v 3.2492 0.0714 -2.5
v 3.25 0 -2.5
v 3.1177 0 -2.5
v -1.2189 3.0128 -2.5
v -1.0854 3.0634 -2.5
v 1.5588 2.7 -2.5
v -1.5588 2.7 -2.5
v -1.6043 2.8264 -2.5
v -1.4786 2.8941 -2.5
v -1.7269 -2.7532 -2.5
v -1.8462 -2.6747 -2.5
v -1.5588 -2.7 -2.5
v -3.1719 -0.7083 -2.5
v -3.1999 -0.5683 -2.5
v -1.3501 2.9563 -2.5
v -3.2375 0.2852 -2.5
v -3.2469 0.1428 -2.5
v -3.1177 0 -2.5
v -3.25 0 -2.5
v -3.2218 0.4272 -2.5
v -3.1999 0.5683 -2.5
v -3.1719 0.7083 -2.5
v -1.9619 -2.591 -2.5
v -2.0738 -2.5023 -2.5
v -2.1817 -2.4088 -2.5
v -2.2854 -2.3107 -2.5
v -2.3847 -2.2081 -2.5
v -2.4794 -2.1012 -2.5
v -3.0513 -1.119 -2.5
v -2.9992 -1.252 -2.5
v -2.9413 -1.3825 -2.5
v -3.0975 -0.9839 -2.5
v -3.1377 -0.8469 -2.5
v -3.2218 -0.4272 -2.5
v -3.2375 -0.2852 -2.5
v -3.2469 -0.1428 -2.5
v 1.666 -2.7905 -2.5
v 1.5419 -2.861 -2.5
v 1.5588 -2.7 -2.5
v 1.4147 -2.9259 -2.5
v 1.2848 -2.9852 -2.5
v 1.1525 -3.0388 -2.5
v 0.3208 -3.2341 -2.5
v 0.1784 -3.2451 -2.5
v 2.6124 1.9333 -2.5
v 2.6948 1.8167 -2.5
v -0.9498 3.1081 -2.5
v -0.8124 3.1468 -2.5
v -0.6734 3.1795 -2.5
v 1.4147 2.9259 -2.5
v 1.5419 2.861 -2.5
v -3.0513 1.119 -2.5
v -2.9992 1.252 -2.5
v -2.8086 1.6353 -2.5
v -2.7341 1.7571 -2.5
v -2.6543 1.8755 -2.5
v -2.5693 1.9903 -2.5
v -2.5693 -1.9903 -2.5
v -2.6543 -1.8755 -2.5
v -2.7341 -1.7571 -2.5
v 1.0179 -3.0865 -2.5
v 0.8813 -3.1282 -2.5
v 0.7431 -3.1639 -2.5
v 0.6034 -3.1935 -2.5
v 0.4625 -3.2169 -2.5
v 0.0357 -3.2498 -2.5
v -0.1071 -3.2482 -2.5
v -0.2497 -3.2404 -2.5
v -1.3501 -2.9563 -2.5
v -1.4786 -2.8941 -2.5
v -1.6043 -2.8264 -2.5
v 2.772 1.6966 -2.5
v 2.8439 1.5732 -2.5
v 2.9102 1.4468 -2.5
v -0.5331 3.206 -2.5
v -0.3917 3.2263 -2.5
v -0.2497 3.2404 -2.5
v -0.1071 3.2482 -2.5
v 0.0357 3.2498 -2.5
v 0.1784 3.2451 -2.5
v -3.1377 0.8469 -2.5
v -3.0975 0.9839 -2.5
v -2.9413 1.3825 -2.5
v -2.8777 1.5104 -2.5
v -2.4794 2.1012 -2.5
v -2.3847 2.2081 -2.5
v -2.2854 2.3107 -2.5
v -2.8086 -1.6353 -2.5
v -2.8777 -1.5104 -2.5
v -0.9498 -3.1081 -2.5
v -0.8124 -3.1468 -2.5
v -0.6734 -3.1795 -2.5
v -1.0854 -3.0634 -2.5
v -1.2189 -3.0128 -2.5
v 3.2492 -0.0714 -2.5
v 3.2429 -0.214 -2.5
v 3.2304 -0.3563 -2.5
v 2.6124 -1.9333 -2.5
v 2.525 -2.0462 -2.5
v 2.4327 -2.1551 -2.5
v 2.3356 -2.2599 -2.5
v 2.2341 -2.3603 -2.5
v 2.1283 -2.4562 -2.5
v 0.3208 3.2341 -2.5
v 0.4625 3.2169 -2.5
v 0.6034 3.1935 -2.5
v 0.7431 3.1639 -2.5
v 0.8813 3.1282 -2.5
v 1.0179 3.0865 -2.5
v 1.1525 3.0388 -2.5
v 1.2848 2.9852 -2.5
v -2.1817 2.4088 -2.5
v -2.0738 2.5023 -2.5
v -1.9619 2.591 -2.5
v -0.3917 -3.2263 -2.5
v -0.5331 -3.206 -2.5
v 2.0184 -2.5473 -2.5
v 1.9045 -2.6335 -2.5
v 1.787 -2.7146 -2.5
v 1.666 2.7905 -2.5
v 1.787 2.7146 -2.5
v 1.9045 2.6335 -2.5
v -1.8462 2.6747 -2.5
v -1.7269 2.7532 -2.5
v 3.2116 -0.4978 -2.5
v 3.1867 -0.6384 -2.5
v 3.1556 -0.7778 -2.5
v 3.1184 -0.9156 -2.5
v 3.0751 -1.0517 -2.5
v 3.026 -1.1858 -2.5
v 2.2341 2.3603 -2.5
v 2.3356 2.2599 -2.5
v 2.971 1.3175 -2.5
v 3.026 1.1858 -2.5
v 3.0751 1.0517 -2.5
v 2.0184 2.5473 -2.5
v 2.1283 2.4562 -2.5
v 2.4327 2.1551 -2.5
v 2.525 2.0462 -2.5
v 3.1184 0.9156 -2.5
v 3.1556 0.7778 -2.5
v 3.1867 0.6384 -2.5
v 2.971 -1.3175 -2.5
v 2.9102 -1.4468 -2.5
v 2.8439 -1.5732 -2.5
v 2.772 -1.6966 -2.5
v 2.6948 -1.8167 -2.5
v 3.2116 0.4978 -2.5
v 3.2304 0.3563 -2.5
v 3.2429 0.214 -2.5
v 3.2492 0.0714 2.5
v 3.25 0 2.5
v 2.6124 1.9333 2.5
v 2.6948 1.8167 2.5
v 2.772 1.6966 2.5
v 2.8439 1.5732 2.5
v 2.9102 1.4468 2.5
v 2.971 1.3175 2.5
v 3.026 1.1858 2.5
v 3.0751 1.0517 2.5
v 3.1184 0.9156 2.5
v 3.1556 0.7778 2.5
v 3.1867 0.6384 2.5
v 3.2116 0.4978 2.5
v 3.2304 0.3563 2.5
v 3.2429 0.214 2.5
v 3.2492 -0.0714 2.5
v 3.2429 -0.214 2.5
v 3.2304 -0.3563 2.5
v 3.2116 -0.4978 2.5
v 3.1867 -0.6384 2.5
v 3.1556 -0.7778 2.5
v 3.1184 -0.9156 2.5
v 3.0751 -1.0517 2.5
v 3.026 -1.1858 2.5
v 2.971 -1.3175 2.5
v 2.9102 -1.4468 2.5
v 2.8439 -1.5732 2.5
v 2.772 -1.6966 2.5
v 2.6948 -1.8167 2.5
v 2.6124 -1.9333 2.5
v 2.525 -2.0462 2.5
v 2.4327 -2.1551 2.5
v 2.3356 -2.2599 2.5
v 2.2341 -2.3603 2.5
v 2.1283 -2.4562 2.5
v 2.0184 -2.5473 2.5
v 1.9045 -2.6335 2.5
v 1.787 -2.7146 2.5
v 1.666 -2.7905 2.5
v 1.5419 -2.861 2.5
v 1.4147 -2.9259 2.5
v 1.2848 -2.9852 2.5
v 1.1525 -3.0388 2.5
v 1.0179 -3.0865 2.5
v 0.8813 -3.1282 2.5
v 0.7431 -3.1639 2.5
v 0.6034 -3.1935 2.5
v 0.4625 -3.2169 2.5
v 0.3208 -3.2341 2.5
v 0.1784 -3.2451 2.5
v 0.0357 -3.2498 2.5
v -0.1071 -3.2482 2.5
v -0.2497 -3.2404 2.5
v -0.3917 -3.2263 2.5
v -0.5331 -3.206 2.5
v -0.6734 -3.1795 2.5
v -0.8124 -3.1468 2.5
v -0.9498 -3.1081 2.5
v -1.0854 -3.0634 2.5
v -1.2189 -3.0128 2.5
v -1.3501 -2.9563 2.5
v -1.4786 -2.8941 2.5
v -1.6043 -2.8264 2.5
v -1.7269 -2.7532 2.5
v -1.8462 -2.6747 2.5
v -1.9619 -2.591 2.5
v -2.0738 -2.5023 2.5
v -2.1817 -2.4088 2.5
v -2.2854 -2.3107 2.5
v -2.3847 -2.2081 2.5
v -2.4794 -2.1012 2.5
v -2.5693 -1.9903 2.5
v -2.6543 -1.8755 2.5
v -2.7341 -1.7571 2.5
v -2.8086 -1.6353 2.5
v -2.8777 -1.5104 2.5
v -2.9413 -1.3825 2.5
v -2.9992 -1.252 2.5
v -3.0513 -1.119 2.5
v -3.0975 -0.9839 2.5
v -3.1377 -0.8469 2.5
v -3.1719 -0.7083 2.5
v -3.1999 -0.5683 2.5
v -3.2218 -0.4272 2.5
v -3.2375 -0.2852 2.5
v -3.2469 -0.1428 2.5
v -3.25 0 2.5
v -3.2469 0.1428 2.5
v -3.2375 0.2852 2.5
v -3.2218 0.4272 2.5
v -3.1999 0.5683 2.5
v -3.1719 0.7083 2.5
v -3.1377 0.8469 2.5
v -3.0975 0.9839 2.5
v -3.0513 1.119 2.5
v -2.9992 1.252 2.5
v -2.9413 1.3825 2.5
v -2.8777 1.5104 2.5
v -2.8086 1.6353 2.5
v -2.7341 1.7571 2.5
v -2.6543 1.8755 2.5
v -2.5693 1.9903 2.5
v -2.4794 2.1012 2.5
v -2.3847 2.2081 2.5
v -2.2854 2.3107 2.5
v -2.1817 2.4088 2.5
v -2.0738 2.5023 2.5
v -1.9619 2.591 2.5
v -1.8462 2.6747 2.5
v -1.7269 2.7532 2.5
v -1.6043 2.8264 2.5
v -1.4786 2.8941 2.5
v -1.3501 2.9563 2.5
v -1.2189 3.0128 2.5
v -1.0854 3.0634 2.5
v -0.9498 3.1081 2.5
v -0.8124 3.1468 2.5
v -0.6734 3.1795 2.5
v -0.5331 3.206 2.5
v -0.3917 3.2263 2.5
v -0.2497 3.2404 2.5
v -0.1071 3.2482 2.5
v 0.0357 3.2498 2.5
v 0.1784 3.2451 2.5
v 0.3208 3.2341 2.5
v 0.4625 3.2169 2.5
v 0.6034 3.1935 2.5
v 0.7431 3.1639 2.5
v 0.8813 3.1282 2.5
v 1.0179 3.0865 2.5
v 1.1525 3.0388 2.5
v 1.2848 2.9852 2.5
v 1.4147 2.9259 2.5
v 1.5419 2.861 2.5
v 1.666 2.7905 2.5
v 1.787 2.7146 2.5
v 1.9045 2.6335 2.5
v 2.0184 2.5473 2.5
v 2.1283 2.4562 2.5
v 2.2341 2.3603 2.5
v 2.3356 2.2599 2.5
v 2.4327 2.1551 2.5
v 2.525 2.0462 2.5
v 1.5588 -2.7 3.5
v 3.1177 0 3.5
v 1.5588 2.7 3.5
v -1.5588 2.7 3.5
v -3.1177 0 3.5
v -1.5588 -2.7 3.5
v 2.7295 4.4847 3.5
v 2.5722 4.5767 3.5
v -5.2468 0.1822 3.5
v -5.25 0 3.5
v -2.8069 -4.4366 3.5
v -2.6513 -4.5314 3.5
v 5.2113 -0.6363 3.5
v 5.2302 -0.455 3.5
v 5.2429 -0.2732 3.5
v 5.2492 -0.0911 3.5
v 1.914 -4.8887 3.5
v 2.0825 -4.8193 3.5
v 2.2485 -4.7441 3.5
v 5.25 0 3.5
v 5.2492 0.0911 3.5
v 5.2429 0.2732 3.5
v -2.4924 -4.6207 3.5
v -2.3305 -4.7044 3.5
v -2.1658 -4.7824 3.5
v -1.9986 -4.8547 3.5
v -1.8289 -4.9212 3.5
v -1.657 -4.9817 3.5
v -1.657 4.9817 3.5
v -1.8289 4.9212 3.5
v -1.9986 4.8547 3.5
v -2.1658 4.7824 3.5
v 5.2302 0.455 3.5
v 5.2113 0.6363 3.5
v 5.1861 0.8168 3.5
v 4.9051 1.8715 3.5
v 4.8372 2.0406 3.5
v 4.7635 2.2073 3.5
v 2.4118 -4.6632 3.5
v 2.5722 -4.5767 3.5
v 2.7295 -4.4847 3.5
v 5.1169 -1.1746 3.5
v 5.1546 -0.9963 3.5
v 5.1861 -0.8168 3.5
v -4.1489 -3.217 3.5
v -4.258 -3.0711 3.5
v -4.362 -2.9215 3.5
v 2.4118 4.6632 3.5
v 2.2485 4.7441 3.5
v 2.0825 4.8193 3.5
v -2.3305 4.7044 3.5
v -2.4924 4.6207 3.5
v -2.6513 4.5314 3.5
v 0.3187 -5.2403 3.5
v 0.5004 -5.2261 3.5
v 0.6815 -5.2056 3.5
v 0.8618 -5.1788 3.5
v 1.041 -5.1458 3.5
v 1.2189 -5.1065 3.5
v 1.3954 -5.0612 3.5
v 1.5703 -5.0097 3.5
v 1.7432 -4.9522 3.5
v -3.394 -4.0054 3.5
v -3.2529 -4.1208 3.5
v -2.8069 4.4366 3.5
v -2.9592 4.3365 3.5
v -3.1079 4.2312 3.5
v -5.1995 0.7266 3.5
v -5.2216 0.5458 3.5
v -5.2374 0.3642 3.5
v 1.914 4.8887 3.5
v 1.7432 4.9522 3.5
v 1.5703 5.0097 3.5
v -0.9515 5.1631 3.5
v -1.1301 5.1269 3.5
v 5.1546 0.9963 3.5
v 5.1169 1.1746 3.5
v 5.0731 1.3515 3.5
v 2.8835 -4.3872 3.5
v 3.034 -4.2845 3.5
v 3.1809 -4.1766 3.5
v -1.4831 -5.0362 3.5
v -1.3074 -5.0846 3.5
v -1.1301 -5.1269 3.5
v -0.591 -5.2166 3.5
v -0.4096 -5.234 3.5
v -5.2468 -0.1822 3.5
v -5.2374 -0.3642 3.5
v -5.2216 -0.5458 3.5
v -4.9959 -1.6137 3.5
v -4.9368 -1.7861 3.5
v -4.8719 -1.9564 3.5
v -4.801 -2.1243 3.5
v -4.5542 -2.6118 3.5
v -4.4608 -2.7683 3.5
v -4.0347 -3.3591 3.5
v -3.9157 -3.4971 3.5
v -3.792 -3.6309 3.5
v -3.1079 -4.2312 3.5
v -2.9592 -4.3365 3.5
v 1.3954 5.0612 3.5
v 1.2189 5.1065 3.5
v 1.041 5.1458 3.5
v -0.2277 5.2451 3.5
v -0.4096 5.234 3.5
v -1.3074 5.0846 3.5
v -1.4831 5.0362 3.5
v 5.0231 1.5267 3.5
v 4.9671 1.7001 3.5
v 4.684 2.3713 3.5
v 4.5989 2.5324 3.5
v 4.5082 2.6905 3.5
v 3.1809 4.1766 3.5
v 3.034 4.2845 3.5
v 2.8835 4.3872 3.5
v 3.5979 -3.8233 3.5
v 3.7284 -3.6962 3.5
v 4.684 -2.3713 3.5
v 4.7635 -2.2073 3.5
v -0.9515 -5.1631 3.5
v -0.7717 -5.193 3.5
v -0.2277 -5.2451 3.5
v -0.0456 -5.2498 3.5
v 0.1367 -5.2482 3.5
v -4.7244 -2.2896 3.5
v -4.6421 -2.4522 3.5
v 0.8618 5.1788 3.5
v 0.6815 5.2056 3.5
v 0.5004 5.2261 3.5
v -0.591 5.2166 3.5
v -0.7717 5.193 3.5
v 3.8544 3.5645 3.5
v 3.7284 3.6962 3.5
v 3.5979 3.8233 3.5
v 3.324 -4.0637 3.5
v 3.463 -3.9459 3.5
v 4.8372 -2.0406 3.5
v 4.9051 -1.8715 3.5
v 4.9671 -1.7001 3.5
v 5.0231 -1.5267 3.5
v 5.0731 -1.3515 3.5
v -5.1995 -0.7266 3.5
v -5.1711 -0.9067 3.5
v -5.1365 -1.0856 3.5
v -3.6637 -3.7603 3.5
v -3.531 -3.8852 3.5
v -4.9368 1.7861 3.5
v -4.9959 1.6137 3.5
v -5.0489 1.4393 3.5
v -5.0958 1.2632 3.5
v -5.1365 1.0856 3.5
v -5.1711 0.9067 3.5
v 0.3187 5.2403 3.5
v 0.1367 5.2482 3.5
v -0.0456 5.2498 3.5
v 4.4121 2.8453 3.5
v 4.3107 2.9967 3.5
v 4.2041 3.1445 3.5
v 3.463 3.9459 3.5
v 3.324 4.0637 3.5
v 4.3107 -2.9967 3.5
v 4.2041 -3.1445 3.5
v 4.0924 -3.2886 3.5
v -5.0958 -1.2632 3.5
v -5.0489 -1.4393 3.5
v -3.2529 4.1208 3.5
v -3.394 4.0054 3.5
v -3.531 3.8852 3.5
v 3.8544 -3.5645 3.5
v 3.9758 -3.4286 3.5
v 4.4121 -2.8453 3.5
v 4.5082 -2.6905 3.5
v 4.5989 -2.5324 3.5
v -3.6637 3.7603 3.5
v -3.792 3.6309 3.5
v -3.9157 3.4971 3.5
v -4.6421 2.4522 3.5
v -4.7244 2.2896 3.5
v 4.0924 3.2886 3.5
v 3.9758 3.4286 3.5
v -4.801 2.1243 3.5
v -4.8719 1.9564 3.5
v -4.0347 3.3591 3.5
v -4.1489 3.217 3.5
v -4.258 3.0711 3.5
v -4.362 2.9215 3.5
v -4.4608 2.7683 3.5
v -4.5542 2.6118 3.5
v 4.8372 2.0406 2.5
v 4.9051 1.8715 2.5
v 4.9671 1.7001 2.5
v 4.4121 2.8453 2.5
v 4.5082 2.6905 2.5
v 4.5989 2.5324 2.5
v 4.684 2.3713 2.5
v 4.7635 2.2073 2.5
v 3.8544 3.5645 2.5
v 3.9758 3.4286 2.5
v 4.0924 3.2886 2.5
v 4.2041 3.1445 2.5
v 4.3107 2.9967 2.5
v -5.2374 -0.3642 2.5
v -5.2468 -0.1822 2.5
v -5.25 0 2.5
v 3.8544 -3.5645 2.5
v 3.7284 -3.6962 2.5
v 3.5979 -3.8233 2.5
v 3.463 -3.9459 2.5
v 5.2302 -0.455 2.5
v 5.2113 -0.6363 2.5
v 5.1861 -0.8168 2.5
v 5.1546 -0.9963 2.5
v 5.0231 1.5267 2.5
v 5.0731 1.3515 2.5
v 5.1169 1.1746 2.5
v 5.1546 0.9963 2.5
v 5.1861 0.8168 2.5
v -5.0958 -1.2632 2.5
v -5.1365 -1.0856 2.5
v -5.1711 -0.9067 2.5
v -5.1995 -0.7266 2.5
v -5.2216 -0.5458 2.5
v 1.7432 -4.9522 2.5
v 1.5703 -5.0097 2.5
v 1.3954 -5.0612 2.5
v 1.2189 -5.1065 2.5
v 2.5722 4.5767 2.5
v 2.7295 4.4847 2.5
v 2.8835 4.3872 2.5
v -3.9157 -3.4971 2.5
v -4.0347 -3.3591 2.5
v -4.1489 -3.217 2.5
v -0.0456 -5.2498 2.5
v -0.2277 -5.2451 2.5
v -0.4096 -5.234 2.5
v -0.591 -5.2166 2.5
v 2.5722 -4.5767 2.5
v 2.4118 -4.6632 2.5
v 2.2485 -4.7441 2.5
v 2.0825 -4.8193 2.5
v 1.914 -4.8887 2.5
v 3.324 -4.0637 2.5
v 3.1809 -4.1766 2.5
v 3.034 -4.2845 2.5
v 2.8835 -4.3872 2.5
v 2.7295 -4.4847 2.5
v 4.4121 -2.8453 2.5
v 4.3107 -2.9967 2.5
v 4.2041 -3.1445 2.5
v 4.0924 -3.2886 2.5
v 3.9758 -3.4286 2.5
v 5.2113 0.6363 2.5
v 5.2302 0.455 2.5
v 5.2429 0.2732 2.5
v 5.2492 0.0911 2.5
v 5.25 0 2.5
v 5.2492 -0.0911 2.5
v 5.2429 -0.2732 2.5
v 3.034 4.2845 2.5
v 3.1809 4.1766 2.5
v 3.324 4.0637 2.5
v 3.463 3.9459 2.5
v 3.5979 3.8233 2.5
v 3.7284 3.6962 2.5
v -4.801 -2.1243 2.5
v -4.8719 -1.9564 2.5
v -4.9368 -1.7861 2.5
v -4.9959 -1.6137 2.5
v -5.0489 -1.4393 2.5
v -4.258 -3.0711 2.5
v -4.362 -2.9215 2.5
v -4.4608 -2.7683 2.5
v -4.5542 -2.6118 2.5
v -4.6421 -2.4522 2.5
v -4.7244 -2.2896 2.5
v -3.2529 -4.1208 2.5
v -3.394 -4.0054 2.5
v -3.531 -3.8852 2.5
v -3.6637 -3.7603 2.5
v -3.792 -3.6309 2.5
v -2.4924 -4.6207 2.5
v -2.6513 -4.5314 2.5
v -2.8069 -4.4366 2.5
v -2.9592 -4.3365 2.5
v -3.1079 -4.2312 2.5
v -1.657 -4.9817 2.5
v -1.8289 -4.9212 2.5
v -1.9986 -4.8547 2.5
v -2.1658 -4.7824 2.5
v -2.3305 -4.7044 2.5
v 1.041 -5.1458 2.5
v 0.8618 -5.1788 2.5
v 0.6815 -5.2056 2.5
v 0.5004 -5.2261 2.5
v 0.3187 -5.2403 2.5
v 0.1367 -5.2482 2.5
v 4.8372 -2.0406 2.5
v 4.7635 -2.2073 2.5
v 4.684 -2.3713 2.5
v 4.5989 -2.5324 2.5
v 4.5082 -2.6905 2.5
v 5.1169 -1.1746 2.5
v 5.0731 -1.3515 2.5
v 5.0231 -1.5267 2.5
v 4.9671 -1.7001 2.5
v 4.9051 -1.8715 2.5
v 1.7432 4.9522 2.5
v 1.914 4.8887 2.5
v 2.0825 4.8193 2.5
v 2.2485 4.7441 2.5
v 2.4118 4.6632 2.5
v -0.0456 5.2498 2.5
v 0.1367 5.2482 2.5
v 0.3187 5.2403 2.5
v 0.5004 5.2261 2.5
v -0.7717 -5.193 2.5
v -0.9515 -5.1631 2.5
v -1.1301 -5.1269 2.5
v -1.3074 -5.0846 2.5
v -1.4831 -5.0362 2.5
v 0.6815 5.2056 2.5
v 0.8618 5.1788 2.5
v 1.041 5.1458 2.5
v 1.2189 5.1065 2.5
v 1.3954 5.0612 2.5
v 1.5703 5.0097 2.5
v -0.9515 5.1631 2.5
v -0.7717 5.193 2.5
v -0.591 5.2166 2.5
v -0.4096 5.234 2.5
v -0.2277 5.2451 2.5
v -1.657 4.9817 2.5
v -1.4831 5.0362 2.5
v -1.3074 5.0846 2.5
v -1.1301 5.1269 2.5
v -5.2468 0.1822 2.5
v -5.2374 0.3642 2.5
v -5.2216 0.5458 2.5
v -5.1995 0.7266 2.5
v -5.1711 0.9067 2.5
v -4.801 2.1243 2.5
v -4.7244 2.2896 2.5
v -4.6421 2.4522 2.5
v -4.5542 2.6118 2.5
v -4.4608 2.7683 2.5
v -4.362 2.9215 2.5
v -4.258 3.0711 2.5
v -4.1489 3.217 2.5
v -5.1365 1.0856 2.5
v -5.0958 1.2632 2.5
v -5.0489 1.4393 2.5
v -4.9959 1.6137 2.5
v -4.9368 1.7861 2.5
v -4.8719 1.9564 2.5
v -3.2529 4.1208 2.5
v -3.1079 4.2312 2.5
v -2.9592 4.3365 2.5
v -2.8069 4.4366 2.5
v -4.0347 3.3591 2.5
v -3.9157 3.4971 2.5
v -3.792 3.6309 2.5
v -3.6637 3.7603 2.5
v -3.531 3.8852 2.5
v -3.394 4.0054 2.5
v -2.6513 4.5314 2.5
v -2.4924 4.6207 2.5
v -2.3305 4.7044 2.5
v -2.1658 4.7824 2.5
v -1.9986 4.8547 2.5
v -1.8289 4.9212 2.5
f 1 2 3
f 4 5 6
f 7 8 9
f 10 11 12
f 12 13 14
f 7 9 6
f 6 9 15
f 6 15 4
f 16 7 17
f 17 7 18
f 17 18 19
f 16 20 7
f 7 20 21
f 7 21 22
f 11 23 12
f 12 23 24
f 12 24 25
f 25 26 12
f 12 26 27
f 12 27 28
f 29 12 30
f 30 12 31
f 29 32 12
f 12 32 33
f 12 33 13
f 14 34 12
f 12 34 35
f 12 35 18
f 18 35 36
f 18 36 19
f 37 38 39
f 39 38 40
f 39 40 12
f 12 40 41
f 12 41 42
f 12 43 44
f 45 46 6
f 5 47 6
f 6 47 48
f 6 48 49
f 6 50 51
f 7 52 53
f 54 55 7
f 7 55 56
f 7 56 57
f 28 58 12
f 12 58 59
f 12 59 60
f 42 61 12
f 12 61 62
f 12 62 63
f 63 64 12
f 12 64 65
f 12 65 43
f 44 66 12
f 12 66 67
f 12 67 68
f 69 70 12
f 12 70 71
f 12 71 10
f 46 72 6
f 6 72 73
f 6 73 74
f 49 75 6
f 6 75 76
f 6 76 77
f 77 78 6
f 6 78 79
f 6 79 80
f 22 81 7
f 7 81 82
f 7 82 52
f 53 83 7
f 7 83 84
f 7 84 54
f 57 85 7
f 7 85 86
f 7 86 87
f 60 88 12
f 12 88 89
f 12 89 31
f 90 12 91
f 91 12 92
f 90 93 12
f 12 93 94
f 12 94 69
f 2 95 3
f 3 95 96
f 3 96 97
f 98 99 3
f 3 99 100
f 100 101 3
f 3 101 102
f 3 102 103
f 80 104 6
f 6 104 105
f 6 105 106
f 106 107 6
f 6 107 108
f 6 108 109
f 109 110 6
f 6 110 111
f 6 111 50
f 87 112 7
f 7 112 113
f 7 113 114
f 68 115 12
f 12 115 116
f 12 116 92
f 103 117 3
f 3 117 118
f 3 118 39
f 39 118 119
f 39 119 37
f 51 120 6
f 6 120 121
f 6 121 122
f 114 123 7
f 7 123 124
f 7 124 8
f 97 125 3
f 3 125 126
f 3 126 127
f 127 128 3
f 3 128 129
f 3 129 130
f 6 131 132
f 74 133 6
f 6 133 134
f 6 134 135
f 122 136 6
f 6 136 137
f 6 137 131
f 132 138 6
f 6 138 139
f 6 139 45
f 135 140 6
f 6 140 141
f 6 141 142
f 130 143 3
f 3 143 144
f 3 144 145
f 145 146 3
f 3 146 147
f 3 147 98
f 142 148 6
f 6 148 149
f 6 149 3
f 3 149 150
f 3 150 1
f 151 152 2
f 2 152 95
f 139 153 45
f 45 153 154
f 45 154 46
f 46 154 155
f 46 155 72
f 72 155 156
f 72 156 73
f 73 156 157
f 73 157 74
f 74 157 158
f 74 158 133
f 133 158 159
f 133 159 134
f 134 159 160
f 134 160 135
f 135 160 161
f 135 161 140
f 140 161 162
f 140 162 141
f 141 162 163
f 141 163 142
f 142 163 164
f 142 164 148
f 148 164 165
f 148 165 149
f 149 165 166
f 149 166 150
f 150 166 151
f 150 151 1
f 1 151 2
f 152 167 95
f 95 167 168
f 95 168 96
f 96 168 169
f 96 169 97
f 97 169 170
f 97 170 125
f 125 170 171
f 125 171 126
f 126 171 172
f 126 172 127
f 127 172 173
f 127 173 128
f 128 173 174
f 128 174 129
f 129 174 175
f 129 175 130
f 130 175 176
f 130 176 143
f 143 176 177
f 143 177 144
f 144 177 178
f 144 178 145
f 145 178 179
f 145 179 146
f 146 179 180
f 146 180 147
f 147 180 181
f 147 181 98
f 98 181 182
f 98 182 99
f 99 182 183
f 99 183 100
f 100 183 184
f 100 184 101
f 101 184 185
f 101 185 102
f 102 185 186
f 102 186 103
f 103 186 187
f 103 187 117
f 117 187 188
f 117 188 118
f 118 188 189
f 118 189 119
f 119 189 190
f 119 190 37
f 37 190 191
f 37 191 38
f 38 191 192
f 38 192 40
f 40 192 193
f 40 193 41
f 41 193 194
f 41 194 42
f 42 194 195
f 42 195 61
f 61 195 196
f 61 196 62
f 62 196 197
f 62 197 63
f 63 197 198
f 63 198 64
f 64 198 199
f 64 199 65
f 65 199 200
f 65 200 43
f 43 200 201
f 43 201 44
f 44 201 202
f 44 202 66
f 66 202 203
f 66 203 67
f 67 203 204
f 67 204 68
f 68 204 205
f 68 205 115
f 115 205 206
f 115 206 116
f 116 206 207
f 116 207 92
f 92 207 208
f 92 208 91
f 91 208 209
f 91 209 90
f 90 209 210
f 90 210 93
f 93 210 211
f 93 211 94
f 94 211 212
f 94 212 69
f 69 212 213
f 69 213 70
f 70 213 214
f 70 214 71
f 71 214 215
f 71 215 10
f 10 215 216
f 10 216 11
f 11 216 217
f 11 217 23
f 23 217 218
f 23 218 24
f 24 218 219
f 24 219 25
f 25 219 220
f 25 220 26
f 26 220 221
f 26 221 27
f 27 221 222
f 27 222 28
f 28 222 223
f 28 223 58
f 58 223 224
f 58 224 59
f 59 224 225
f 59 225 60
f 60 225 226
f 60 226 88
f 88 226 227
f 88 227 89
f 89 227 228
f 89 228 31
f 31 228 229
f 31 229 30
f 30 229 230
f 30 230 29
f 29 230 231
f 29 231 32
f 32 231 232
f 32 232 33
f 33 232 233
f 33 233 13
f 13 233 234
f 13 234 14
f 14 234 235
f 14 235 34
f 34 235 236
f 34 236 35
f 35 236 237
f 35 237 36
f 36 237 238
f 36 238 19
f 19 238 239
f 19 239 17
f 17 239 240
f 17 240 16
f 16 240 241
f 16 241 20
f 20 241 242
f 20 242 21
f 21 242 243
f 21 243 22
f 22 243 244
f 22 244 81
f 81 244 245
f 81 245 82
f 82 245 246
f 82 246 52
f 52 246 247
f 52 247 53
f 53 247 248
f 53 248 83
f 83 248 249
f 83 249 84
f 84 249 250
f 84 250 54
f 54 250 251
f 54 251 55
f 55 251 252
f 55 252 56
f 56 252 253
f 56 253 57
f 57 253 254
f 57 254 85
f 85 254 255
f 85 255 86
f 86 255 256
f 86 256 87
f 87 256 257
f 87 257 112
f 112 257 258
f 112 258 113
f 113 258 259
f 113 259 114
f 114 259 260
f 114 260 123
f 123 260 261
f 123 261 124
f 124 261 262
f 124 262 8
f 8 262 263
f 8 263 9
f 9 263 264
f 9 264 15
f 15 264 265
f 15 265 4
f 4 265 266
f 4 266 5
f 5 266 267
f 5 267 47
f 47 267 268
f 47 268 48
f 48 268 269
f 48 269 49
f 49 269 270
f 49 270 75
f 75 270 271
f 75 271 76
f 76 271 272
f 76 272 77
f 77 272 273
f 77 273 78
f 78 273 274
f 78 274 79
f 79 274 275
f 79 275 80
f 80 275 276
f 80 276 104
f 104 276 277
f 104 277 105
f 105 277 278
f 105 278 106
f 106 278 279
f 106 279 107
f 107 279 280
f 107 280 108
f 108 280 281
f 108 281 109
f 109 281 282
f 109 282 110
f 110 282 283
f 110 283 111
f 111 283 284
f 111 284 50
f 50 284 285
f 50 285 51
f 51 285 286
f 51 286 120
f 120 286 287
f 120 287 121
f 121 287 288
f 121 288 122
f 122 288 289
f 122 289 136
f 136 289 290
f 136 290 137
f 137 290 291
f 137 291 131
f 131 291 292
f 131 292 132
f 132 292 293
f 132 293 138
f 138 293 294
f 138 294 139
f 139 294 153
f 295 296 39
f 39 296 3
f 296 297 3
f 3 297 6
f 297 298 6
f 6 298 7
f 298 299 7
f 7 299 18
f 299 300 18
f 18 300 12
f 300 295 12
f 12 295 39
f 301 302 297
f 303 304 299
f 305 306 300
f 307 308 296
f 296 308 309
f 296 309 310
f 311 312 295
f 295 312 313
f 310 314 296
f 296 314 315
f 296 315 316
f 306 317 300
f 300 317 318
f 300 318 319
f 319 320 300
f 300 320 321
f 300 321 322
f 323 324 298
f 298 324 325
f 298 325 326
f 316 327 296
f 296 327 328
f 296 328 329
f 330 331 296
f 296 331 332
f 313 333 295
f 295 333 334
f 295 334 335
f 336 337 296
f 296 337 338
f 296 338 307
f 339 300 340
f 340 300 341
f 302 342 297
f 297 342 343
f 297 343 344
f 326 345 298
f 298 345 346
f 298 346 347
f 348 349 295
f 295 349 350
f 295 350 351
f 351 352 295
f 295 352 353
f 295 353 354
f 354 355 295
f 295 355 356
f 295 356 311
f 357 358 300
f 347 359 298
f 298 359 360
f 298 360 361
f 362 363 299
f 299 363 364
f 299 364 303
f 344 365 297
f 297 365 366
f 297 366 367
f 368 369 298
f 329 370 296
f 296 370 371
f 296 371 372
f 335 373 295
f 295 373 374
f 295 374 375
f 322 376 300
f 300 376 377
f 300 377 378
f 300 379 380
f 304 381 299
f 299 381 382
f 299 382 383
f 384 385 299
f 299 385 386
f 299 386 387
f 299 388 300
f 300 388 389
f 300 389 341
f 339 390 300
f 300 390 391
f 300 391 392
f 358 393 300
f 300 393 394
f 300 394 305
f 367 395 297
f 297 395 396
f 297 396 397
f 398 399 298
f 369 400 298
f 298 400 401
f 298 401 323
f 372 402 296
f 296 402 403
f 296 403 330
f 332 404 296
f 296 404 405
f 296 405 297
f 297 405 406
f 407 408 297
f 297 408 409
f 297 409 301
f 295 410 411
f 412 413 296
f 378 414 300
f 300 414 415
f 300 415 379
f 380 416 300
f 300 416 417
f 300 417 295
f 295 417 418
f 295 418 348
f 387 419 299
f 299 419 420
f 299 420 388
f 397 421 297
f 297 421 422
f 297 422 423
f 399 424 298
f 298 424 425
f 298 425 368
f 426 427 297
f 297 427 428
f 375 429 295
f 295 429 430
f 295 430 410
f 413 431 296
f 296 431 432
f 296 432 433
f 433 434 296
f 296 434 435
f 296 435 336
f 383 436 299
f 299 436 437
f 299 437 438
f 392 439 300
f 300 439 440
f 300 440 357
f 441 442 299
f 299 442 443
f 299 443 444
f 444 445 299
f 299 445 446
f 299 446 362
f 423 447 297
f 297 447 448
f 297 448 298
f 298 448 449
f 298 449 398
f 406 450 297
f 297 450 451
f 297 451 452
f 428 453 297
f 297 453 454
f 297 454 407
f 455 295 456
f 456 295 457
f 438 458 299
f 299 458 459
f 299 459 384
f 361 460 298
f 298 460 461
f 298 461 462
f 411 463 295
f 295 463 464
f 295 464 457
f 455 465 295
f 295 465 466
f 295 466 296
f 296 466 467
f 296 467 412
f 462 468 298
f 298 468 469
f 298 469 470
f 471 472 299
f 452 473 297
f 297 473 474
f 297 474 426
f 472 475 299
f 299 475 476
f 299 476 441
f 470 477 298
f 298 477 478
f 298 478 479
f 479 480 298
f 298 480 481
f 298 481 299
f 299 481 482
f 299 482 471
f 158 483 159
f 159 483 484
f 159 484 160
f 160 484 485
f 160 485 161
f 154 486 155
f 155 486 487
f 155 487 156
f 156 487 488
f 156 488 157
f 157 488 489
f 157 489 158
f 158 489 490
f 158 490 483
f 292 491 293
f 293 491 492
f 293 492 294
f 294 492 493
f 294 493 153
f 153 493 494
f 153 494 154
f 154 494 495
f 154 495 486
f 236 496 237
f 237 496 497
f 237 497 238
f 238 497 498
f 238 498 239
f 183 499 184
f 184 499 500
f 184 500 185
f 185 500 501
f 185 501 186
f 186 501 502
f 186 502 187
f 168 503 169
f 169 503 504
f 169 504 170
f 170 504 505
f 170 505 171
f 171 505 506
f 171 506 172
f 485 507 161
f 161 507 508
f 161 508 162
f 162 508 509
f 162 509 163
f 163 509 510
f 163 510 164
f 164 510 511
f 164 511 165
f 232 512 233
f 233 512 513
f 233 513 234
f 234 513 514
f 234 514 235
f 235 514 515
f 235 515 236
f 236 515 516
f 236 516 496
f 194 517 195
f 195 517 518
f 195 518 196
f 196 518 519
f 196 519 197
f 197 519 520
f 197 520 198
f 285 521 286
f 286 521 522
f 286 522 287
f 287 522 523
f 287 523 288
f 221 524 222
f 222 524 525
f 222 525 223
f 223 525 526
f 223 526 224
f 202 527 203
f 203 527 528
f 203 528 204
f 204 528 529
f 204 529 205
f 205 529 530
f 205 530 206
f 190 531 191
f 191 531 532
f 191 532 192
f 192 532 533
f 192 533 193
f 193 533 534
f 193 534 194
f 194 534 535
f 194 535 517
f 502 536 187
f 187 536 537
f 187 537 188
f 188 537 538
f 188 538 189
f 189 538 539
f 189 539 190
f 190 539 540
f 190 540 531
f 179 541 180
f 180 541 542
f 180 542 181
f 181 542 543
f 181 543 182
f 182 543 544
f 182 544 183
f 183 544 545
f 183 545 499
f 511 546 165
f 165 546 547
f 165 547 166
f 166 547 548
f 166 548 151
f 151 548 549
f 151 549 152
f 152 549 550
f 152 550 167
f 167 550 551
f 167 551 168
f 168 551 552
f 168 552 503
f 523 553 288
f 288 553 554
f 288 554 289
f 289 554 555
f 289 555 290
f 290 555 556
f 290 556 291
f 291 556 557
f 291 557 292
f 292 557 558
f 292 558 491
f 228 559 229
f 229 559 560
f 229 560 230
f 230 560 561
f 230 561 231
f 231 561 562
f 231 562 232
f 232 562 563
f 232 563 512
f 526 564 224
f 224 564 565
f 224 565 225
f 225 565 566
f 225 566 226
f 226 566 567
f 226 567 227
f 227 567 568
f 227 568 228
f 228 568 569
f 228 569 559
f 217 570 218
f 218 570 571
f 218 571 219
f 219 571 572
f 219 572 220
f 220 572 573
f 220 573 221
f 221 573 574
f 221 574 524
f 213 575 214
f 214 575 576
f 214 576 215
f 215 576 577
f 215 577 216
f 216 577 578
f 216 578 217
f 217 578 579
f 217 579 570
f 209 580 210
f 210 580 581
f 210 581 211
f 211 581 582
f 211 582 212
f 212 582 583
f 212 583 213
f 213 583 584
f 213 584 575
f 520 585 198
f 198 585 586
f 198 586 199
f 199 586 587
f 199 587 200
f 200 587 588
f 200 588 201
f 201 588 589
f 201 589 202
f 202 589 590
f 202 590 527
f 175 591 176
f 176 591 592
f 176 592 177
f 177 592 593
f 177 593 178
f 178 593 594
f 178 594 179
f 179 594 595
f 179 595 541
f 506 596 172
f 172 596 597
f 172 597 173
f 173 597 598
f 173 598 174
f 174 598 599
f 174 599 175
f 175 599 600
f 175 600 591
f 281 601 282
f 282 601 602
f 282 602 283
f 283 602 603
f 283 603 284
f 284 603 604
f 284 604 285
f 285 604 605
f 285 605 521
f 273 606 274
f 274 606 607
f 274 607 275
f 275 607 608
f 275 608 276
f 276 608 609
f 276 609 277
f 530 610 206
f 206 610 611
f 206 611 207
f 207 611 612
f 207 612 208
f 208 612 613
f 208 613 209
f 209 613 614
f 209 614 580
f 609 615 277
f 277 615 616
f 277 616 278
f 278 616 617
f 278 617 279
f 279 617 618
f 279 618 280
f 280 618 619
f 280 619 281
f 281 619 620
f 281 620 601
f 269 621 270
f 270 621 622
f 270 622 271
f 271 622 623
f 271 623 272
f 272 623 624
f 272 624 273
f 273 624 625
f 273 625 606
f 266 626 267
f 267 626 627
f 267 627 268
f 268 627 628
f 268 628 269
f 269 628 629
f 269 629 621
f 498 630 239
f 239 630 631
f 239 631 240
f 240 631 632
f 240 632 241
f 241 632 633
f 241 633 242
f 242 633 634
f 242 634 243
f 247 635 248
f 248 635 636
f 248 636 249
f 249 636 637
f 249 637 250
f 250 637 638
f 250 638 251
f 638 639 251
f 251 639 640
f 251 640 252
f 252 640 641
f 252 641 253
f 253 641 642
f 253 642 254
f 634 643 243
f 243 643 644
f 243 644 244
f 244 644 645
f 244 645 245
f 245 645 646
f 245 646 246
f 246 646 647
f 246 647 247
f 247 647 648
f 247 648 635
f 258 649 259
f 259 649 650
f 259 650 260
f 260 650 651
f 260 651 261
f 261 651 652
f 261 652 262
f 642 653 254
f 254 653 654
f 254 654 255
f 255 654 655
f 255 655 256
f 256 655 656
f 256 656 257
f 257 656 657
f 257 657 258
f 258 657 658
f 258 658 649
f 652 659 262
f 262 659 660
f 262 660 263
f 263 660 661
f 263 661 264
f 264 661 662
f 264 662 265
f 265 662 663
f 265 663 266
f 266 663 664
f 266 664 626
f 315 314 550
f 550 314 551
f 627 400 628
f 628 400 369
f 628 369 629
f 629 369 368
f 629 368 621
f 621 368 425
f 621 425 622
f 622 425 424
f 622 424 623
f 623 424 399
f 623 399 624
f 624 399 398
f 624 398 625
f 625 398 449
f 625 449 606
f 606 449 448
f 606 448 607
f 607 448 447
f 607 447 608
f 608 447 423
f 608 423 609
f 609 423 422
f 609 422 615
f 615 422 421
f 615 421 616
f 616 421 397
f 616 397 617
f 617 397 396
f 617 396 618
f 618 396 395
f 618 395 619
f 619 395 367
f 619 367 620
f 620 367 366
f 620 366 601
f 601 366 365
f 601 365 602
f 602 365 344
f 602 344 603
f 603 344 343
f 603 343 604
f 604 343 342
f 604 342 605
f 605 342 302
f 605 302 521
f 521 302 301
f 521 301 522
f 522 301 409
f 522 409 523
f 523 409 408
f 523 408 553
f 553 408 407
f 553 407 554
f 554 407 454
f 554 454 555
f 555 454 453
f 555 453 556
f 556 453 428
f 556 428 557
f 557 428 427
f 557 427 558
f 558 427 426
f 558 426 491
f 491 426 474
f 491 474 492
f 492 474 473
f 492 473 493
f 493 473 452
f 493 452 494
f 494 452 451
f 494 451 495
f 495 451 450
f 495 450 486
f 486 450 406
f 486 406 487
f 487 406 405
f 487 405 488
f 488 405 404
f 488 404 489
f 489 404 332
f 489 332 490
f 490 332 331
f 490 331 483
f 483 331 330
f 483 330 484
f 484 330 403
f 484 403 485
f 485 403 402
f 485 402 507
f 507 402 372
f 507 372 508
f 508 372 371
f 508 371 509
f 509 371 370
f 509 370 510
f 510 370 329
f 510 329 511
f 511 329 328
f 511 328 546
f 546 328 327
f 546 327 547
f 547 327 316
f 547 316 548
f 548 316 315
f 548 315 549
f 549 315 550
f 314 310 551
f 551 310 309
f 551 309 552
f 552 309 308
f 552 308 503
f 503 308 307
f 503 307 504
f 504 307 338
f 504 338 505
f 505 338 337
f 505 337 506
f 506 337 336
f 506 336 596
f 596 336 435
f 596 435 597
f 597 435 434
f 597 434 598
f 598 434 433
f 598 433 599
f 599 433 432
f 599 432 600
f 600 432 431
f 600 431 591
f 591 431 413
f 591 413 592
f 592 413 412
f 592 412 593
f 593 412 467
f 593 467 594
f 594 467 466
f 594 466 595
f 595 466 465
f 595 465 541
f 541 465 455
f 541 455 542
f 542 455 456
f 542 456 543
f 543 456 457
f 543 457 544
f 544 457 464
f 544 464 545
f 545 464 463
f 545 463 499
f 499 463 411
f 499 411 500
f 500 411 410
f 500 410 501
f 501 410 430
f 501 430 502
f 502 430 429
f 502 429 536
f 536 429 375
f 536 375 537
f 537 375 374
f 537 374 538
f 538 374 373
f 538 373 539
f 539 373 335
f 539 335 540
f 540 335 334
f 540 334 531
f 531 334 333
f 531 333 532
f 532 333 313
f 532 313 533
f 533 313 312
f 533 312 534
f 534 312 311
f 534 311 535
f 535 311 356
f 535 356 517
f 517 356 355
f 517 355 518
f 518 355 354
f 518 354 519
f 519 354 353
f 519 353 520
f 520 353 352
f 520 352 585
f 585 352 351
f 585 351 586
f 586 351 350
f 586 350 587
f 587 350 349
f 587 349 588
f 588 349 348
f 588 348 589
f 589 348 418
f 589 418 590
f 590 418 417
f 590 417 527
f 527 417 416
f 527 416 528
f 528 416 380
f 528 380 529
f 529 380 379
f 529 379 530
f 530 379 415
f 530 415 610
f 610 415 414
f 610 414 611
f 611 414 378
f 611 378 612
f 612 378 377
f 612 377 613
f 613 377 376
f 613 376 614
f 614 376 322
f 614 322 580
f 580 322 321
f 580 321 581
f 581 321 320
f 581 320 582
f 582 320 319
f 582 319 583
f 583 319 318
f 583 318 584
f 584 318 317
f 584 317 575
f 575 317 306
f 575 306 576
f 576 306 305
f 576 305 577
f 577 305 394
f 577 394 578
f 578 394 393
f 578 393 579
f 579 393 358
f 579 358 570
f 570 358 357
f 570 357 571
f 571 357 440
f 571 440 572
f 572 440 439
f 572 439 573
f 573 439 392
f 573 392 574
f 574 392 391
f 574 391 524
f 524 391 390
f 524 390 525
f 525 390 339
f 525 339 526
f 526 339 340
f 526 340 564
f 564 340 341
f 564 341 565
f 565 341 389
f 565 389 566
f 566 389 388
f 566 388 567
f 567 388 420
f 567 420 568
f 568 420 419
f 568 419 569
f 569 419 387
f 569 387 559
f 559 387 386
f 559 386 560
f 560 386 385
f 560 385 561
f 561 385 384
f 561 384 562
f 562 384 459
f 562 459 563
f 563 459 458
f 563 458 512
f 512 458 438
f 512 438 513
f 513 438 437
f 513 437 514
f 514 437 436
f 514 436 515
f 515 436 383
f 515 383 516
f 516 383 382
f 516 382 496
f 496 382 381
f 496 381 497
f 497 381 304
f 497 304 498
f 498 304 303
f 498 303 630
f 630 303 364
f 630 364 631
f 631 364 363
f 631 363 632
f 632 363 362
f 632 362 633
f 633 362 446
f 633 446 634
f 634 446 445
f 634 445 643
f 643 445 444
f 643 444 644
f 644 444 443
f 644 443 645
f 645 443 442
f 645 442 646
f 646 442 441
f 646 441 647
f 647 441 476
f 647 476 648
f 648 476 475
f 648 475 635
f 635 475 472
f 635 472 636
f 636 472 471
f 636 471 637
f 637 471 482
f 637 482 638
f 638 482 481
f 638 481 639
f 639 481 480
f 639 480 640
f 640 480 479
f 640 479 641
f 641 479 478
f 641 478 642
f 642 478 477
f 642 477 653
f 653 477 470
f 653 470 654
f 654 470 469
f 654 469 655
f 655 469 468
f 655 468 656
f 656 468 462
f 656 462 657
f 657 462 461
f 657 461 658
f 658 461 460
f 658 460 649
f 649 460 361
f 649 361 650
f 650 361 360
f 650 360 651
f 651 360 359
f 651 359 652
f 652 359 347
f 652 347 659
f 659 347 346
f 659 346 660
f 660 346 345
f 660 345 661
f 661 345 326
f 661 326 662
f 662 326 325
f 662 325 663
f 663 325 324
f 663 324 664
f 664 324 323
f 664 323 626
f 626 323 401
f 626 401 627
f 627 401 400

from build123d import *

# Parameters (mm, degrees)
SKETCH1_R           = 3.25
BOSS_EXTRUDE1_DEPTH = 2.5
SKETCH2_R           = 5.25
BOSS_EXTRUDE2_DEPTH = 1


with BuildPart() as part:
    # Sketch1 → Boss-Extrude1 (new, symmetric)
    with BuildSketch(Plane.XY):
        Circle(SKETCH1_R)
        Polygon((3.117691454, 0), (1.558845727, 2.7), (-1.558845727, 2.7), (-3.117691454, 0), (-1.558845727, -2.7), (1.558845727, -2.7), align=None, mode=Mode.SUBTRACT)
    extrude(amount=BOSS_EXTRUDE1_DEPTH, both=True)

    # Sketch2 → Boss-Extrude2 (add)
    with BuildSketch(Plane.XY.offset(2.5)):
        Circle(SKETCH2_R)
        Polygon((3.117691454, 0), (1.558845727, 2.7), (-1.558845727, 2.7), (-3.117691454, 0), (-1.558845727, -2.7), (1.558845727, -2.7), align=None, mode=Mode.SUBTRACT)
    extrude(amount=BOSS_EXTRUDE2_DEPTH)


solid = part.part
